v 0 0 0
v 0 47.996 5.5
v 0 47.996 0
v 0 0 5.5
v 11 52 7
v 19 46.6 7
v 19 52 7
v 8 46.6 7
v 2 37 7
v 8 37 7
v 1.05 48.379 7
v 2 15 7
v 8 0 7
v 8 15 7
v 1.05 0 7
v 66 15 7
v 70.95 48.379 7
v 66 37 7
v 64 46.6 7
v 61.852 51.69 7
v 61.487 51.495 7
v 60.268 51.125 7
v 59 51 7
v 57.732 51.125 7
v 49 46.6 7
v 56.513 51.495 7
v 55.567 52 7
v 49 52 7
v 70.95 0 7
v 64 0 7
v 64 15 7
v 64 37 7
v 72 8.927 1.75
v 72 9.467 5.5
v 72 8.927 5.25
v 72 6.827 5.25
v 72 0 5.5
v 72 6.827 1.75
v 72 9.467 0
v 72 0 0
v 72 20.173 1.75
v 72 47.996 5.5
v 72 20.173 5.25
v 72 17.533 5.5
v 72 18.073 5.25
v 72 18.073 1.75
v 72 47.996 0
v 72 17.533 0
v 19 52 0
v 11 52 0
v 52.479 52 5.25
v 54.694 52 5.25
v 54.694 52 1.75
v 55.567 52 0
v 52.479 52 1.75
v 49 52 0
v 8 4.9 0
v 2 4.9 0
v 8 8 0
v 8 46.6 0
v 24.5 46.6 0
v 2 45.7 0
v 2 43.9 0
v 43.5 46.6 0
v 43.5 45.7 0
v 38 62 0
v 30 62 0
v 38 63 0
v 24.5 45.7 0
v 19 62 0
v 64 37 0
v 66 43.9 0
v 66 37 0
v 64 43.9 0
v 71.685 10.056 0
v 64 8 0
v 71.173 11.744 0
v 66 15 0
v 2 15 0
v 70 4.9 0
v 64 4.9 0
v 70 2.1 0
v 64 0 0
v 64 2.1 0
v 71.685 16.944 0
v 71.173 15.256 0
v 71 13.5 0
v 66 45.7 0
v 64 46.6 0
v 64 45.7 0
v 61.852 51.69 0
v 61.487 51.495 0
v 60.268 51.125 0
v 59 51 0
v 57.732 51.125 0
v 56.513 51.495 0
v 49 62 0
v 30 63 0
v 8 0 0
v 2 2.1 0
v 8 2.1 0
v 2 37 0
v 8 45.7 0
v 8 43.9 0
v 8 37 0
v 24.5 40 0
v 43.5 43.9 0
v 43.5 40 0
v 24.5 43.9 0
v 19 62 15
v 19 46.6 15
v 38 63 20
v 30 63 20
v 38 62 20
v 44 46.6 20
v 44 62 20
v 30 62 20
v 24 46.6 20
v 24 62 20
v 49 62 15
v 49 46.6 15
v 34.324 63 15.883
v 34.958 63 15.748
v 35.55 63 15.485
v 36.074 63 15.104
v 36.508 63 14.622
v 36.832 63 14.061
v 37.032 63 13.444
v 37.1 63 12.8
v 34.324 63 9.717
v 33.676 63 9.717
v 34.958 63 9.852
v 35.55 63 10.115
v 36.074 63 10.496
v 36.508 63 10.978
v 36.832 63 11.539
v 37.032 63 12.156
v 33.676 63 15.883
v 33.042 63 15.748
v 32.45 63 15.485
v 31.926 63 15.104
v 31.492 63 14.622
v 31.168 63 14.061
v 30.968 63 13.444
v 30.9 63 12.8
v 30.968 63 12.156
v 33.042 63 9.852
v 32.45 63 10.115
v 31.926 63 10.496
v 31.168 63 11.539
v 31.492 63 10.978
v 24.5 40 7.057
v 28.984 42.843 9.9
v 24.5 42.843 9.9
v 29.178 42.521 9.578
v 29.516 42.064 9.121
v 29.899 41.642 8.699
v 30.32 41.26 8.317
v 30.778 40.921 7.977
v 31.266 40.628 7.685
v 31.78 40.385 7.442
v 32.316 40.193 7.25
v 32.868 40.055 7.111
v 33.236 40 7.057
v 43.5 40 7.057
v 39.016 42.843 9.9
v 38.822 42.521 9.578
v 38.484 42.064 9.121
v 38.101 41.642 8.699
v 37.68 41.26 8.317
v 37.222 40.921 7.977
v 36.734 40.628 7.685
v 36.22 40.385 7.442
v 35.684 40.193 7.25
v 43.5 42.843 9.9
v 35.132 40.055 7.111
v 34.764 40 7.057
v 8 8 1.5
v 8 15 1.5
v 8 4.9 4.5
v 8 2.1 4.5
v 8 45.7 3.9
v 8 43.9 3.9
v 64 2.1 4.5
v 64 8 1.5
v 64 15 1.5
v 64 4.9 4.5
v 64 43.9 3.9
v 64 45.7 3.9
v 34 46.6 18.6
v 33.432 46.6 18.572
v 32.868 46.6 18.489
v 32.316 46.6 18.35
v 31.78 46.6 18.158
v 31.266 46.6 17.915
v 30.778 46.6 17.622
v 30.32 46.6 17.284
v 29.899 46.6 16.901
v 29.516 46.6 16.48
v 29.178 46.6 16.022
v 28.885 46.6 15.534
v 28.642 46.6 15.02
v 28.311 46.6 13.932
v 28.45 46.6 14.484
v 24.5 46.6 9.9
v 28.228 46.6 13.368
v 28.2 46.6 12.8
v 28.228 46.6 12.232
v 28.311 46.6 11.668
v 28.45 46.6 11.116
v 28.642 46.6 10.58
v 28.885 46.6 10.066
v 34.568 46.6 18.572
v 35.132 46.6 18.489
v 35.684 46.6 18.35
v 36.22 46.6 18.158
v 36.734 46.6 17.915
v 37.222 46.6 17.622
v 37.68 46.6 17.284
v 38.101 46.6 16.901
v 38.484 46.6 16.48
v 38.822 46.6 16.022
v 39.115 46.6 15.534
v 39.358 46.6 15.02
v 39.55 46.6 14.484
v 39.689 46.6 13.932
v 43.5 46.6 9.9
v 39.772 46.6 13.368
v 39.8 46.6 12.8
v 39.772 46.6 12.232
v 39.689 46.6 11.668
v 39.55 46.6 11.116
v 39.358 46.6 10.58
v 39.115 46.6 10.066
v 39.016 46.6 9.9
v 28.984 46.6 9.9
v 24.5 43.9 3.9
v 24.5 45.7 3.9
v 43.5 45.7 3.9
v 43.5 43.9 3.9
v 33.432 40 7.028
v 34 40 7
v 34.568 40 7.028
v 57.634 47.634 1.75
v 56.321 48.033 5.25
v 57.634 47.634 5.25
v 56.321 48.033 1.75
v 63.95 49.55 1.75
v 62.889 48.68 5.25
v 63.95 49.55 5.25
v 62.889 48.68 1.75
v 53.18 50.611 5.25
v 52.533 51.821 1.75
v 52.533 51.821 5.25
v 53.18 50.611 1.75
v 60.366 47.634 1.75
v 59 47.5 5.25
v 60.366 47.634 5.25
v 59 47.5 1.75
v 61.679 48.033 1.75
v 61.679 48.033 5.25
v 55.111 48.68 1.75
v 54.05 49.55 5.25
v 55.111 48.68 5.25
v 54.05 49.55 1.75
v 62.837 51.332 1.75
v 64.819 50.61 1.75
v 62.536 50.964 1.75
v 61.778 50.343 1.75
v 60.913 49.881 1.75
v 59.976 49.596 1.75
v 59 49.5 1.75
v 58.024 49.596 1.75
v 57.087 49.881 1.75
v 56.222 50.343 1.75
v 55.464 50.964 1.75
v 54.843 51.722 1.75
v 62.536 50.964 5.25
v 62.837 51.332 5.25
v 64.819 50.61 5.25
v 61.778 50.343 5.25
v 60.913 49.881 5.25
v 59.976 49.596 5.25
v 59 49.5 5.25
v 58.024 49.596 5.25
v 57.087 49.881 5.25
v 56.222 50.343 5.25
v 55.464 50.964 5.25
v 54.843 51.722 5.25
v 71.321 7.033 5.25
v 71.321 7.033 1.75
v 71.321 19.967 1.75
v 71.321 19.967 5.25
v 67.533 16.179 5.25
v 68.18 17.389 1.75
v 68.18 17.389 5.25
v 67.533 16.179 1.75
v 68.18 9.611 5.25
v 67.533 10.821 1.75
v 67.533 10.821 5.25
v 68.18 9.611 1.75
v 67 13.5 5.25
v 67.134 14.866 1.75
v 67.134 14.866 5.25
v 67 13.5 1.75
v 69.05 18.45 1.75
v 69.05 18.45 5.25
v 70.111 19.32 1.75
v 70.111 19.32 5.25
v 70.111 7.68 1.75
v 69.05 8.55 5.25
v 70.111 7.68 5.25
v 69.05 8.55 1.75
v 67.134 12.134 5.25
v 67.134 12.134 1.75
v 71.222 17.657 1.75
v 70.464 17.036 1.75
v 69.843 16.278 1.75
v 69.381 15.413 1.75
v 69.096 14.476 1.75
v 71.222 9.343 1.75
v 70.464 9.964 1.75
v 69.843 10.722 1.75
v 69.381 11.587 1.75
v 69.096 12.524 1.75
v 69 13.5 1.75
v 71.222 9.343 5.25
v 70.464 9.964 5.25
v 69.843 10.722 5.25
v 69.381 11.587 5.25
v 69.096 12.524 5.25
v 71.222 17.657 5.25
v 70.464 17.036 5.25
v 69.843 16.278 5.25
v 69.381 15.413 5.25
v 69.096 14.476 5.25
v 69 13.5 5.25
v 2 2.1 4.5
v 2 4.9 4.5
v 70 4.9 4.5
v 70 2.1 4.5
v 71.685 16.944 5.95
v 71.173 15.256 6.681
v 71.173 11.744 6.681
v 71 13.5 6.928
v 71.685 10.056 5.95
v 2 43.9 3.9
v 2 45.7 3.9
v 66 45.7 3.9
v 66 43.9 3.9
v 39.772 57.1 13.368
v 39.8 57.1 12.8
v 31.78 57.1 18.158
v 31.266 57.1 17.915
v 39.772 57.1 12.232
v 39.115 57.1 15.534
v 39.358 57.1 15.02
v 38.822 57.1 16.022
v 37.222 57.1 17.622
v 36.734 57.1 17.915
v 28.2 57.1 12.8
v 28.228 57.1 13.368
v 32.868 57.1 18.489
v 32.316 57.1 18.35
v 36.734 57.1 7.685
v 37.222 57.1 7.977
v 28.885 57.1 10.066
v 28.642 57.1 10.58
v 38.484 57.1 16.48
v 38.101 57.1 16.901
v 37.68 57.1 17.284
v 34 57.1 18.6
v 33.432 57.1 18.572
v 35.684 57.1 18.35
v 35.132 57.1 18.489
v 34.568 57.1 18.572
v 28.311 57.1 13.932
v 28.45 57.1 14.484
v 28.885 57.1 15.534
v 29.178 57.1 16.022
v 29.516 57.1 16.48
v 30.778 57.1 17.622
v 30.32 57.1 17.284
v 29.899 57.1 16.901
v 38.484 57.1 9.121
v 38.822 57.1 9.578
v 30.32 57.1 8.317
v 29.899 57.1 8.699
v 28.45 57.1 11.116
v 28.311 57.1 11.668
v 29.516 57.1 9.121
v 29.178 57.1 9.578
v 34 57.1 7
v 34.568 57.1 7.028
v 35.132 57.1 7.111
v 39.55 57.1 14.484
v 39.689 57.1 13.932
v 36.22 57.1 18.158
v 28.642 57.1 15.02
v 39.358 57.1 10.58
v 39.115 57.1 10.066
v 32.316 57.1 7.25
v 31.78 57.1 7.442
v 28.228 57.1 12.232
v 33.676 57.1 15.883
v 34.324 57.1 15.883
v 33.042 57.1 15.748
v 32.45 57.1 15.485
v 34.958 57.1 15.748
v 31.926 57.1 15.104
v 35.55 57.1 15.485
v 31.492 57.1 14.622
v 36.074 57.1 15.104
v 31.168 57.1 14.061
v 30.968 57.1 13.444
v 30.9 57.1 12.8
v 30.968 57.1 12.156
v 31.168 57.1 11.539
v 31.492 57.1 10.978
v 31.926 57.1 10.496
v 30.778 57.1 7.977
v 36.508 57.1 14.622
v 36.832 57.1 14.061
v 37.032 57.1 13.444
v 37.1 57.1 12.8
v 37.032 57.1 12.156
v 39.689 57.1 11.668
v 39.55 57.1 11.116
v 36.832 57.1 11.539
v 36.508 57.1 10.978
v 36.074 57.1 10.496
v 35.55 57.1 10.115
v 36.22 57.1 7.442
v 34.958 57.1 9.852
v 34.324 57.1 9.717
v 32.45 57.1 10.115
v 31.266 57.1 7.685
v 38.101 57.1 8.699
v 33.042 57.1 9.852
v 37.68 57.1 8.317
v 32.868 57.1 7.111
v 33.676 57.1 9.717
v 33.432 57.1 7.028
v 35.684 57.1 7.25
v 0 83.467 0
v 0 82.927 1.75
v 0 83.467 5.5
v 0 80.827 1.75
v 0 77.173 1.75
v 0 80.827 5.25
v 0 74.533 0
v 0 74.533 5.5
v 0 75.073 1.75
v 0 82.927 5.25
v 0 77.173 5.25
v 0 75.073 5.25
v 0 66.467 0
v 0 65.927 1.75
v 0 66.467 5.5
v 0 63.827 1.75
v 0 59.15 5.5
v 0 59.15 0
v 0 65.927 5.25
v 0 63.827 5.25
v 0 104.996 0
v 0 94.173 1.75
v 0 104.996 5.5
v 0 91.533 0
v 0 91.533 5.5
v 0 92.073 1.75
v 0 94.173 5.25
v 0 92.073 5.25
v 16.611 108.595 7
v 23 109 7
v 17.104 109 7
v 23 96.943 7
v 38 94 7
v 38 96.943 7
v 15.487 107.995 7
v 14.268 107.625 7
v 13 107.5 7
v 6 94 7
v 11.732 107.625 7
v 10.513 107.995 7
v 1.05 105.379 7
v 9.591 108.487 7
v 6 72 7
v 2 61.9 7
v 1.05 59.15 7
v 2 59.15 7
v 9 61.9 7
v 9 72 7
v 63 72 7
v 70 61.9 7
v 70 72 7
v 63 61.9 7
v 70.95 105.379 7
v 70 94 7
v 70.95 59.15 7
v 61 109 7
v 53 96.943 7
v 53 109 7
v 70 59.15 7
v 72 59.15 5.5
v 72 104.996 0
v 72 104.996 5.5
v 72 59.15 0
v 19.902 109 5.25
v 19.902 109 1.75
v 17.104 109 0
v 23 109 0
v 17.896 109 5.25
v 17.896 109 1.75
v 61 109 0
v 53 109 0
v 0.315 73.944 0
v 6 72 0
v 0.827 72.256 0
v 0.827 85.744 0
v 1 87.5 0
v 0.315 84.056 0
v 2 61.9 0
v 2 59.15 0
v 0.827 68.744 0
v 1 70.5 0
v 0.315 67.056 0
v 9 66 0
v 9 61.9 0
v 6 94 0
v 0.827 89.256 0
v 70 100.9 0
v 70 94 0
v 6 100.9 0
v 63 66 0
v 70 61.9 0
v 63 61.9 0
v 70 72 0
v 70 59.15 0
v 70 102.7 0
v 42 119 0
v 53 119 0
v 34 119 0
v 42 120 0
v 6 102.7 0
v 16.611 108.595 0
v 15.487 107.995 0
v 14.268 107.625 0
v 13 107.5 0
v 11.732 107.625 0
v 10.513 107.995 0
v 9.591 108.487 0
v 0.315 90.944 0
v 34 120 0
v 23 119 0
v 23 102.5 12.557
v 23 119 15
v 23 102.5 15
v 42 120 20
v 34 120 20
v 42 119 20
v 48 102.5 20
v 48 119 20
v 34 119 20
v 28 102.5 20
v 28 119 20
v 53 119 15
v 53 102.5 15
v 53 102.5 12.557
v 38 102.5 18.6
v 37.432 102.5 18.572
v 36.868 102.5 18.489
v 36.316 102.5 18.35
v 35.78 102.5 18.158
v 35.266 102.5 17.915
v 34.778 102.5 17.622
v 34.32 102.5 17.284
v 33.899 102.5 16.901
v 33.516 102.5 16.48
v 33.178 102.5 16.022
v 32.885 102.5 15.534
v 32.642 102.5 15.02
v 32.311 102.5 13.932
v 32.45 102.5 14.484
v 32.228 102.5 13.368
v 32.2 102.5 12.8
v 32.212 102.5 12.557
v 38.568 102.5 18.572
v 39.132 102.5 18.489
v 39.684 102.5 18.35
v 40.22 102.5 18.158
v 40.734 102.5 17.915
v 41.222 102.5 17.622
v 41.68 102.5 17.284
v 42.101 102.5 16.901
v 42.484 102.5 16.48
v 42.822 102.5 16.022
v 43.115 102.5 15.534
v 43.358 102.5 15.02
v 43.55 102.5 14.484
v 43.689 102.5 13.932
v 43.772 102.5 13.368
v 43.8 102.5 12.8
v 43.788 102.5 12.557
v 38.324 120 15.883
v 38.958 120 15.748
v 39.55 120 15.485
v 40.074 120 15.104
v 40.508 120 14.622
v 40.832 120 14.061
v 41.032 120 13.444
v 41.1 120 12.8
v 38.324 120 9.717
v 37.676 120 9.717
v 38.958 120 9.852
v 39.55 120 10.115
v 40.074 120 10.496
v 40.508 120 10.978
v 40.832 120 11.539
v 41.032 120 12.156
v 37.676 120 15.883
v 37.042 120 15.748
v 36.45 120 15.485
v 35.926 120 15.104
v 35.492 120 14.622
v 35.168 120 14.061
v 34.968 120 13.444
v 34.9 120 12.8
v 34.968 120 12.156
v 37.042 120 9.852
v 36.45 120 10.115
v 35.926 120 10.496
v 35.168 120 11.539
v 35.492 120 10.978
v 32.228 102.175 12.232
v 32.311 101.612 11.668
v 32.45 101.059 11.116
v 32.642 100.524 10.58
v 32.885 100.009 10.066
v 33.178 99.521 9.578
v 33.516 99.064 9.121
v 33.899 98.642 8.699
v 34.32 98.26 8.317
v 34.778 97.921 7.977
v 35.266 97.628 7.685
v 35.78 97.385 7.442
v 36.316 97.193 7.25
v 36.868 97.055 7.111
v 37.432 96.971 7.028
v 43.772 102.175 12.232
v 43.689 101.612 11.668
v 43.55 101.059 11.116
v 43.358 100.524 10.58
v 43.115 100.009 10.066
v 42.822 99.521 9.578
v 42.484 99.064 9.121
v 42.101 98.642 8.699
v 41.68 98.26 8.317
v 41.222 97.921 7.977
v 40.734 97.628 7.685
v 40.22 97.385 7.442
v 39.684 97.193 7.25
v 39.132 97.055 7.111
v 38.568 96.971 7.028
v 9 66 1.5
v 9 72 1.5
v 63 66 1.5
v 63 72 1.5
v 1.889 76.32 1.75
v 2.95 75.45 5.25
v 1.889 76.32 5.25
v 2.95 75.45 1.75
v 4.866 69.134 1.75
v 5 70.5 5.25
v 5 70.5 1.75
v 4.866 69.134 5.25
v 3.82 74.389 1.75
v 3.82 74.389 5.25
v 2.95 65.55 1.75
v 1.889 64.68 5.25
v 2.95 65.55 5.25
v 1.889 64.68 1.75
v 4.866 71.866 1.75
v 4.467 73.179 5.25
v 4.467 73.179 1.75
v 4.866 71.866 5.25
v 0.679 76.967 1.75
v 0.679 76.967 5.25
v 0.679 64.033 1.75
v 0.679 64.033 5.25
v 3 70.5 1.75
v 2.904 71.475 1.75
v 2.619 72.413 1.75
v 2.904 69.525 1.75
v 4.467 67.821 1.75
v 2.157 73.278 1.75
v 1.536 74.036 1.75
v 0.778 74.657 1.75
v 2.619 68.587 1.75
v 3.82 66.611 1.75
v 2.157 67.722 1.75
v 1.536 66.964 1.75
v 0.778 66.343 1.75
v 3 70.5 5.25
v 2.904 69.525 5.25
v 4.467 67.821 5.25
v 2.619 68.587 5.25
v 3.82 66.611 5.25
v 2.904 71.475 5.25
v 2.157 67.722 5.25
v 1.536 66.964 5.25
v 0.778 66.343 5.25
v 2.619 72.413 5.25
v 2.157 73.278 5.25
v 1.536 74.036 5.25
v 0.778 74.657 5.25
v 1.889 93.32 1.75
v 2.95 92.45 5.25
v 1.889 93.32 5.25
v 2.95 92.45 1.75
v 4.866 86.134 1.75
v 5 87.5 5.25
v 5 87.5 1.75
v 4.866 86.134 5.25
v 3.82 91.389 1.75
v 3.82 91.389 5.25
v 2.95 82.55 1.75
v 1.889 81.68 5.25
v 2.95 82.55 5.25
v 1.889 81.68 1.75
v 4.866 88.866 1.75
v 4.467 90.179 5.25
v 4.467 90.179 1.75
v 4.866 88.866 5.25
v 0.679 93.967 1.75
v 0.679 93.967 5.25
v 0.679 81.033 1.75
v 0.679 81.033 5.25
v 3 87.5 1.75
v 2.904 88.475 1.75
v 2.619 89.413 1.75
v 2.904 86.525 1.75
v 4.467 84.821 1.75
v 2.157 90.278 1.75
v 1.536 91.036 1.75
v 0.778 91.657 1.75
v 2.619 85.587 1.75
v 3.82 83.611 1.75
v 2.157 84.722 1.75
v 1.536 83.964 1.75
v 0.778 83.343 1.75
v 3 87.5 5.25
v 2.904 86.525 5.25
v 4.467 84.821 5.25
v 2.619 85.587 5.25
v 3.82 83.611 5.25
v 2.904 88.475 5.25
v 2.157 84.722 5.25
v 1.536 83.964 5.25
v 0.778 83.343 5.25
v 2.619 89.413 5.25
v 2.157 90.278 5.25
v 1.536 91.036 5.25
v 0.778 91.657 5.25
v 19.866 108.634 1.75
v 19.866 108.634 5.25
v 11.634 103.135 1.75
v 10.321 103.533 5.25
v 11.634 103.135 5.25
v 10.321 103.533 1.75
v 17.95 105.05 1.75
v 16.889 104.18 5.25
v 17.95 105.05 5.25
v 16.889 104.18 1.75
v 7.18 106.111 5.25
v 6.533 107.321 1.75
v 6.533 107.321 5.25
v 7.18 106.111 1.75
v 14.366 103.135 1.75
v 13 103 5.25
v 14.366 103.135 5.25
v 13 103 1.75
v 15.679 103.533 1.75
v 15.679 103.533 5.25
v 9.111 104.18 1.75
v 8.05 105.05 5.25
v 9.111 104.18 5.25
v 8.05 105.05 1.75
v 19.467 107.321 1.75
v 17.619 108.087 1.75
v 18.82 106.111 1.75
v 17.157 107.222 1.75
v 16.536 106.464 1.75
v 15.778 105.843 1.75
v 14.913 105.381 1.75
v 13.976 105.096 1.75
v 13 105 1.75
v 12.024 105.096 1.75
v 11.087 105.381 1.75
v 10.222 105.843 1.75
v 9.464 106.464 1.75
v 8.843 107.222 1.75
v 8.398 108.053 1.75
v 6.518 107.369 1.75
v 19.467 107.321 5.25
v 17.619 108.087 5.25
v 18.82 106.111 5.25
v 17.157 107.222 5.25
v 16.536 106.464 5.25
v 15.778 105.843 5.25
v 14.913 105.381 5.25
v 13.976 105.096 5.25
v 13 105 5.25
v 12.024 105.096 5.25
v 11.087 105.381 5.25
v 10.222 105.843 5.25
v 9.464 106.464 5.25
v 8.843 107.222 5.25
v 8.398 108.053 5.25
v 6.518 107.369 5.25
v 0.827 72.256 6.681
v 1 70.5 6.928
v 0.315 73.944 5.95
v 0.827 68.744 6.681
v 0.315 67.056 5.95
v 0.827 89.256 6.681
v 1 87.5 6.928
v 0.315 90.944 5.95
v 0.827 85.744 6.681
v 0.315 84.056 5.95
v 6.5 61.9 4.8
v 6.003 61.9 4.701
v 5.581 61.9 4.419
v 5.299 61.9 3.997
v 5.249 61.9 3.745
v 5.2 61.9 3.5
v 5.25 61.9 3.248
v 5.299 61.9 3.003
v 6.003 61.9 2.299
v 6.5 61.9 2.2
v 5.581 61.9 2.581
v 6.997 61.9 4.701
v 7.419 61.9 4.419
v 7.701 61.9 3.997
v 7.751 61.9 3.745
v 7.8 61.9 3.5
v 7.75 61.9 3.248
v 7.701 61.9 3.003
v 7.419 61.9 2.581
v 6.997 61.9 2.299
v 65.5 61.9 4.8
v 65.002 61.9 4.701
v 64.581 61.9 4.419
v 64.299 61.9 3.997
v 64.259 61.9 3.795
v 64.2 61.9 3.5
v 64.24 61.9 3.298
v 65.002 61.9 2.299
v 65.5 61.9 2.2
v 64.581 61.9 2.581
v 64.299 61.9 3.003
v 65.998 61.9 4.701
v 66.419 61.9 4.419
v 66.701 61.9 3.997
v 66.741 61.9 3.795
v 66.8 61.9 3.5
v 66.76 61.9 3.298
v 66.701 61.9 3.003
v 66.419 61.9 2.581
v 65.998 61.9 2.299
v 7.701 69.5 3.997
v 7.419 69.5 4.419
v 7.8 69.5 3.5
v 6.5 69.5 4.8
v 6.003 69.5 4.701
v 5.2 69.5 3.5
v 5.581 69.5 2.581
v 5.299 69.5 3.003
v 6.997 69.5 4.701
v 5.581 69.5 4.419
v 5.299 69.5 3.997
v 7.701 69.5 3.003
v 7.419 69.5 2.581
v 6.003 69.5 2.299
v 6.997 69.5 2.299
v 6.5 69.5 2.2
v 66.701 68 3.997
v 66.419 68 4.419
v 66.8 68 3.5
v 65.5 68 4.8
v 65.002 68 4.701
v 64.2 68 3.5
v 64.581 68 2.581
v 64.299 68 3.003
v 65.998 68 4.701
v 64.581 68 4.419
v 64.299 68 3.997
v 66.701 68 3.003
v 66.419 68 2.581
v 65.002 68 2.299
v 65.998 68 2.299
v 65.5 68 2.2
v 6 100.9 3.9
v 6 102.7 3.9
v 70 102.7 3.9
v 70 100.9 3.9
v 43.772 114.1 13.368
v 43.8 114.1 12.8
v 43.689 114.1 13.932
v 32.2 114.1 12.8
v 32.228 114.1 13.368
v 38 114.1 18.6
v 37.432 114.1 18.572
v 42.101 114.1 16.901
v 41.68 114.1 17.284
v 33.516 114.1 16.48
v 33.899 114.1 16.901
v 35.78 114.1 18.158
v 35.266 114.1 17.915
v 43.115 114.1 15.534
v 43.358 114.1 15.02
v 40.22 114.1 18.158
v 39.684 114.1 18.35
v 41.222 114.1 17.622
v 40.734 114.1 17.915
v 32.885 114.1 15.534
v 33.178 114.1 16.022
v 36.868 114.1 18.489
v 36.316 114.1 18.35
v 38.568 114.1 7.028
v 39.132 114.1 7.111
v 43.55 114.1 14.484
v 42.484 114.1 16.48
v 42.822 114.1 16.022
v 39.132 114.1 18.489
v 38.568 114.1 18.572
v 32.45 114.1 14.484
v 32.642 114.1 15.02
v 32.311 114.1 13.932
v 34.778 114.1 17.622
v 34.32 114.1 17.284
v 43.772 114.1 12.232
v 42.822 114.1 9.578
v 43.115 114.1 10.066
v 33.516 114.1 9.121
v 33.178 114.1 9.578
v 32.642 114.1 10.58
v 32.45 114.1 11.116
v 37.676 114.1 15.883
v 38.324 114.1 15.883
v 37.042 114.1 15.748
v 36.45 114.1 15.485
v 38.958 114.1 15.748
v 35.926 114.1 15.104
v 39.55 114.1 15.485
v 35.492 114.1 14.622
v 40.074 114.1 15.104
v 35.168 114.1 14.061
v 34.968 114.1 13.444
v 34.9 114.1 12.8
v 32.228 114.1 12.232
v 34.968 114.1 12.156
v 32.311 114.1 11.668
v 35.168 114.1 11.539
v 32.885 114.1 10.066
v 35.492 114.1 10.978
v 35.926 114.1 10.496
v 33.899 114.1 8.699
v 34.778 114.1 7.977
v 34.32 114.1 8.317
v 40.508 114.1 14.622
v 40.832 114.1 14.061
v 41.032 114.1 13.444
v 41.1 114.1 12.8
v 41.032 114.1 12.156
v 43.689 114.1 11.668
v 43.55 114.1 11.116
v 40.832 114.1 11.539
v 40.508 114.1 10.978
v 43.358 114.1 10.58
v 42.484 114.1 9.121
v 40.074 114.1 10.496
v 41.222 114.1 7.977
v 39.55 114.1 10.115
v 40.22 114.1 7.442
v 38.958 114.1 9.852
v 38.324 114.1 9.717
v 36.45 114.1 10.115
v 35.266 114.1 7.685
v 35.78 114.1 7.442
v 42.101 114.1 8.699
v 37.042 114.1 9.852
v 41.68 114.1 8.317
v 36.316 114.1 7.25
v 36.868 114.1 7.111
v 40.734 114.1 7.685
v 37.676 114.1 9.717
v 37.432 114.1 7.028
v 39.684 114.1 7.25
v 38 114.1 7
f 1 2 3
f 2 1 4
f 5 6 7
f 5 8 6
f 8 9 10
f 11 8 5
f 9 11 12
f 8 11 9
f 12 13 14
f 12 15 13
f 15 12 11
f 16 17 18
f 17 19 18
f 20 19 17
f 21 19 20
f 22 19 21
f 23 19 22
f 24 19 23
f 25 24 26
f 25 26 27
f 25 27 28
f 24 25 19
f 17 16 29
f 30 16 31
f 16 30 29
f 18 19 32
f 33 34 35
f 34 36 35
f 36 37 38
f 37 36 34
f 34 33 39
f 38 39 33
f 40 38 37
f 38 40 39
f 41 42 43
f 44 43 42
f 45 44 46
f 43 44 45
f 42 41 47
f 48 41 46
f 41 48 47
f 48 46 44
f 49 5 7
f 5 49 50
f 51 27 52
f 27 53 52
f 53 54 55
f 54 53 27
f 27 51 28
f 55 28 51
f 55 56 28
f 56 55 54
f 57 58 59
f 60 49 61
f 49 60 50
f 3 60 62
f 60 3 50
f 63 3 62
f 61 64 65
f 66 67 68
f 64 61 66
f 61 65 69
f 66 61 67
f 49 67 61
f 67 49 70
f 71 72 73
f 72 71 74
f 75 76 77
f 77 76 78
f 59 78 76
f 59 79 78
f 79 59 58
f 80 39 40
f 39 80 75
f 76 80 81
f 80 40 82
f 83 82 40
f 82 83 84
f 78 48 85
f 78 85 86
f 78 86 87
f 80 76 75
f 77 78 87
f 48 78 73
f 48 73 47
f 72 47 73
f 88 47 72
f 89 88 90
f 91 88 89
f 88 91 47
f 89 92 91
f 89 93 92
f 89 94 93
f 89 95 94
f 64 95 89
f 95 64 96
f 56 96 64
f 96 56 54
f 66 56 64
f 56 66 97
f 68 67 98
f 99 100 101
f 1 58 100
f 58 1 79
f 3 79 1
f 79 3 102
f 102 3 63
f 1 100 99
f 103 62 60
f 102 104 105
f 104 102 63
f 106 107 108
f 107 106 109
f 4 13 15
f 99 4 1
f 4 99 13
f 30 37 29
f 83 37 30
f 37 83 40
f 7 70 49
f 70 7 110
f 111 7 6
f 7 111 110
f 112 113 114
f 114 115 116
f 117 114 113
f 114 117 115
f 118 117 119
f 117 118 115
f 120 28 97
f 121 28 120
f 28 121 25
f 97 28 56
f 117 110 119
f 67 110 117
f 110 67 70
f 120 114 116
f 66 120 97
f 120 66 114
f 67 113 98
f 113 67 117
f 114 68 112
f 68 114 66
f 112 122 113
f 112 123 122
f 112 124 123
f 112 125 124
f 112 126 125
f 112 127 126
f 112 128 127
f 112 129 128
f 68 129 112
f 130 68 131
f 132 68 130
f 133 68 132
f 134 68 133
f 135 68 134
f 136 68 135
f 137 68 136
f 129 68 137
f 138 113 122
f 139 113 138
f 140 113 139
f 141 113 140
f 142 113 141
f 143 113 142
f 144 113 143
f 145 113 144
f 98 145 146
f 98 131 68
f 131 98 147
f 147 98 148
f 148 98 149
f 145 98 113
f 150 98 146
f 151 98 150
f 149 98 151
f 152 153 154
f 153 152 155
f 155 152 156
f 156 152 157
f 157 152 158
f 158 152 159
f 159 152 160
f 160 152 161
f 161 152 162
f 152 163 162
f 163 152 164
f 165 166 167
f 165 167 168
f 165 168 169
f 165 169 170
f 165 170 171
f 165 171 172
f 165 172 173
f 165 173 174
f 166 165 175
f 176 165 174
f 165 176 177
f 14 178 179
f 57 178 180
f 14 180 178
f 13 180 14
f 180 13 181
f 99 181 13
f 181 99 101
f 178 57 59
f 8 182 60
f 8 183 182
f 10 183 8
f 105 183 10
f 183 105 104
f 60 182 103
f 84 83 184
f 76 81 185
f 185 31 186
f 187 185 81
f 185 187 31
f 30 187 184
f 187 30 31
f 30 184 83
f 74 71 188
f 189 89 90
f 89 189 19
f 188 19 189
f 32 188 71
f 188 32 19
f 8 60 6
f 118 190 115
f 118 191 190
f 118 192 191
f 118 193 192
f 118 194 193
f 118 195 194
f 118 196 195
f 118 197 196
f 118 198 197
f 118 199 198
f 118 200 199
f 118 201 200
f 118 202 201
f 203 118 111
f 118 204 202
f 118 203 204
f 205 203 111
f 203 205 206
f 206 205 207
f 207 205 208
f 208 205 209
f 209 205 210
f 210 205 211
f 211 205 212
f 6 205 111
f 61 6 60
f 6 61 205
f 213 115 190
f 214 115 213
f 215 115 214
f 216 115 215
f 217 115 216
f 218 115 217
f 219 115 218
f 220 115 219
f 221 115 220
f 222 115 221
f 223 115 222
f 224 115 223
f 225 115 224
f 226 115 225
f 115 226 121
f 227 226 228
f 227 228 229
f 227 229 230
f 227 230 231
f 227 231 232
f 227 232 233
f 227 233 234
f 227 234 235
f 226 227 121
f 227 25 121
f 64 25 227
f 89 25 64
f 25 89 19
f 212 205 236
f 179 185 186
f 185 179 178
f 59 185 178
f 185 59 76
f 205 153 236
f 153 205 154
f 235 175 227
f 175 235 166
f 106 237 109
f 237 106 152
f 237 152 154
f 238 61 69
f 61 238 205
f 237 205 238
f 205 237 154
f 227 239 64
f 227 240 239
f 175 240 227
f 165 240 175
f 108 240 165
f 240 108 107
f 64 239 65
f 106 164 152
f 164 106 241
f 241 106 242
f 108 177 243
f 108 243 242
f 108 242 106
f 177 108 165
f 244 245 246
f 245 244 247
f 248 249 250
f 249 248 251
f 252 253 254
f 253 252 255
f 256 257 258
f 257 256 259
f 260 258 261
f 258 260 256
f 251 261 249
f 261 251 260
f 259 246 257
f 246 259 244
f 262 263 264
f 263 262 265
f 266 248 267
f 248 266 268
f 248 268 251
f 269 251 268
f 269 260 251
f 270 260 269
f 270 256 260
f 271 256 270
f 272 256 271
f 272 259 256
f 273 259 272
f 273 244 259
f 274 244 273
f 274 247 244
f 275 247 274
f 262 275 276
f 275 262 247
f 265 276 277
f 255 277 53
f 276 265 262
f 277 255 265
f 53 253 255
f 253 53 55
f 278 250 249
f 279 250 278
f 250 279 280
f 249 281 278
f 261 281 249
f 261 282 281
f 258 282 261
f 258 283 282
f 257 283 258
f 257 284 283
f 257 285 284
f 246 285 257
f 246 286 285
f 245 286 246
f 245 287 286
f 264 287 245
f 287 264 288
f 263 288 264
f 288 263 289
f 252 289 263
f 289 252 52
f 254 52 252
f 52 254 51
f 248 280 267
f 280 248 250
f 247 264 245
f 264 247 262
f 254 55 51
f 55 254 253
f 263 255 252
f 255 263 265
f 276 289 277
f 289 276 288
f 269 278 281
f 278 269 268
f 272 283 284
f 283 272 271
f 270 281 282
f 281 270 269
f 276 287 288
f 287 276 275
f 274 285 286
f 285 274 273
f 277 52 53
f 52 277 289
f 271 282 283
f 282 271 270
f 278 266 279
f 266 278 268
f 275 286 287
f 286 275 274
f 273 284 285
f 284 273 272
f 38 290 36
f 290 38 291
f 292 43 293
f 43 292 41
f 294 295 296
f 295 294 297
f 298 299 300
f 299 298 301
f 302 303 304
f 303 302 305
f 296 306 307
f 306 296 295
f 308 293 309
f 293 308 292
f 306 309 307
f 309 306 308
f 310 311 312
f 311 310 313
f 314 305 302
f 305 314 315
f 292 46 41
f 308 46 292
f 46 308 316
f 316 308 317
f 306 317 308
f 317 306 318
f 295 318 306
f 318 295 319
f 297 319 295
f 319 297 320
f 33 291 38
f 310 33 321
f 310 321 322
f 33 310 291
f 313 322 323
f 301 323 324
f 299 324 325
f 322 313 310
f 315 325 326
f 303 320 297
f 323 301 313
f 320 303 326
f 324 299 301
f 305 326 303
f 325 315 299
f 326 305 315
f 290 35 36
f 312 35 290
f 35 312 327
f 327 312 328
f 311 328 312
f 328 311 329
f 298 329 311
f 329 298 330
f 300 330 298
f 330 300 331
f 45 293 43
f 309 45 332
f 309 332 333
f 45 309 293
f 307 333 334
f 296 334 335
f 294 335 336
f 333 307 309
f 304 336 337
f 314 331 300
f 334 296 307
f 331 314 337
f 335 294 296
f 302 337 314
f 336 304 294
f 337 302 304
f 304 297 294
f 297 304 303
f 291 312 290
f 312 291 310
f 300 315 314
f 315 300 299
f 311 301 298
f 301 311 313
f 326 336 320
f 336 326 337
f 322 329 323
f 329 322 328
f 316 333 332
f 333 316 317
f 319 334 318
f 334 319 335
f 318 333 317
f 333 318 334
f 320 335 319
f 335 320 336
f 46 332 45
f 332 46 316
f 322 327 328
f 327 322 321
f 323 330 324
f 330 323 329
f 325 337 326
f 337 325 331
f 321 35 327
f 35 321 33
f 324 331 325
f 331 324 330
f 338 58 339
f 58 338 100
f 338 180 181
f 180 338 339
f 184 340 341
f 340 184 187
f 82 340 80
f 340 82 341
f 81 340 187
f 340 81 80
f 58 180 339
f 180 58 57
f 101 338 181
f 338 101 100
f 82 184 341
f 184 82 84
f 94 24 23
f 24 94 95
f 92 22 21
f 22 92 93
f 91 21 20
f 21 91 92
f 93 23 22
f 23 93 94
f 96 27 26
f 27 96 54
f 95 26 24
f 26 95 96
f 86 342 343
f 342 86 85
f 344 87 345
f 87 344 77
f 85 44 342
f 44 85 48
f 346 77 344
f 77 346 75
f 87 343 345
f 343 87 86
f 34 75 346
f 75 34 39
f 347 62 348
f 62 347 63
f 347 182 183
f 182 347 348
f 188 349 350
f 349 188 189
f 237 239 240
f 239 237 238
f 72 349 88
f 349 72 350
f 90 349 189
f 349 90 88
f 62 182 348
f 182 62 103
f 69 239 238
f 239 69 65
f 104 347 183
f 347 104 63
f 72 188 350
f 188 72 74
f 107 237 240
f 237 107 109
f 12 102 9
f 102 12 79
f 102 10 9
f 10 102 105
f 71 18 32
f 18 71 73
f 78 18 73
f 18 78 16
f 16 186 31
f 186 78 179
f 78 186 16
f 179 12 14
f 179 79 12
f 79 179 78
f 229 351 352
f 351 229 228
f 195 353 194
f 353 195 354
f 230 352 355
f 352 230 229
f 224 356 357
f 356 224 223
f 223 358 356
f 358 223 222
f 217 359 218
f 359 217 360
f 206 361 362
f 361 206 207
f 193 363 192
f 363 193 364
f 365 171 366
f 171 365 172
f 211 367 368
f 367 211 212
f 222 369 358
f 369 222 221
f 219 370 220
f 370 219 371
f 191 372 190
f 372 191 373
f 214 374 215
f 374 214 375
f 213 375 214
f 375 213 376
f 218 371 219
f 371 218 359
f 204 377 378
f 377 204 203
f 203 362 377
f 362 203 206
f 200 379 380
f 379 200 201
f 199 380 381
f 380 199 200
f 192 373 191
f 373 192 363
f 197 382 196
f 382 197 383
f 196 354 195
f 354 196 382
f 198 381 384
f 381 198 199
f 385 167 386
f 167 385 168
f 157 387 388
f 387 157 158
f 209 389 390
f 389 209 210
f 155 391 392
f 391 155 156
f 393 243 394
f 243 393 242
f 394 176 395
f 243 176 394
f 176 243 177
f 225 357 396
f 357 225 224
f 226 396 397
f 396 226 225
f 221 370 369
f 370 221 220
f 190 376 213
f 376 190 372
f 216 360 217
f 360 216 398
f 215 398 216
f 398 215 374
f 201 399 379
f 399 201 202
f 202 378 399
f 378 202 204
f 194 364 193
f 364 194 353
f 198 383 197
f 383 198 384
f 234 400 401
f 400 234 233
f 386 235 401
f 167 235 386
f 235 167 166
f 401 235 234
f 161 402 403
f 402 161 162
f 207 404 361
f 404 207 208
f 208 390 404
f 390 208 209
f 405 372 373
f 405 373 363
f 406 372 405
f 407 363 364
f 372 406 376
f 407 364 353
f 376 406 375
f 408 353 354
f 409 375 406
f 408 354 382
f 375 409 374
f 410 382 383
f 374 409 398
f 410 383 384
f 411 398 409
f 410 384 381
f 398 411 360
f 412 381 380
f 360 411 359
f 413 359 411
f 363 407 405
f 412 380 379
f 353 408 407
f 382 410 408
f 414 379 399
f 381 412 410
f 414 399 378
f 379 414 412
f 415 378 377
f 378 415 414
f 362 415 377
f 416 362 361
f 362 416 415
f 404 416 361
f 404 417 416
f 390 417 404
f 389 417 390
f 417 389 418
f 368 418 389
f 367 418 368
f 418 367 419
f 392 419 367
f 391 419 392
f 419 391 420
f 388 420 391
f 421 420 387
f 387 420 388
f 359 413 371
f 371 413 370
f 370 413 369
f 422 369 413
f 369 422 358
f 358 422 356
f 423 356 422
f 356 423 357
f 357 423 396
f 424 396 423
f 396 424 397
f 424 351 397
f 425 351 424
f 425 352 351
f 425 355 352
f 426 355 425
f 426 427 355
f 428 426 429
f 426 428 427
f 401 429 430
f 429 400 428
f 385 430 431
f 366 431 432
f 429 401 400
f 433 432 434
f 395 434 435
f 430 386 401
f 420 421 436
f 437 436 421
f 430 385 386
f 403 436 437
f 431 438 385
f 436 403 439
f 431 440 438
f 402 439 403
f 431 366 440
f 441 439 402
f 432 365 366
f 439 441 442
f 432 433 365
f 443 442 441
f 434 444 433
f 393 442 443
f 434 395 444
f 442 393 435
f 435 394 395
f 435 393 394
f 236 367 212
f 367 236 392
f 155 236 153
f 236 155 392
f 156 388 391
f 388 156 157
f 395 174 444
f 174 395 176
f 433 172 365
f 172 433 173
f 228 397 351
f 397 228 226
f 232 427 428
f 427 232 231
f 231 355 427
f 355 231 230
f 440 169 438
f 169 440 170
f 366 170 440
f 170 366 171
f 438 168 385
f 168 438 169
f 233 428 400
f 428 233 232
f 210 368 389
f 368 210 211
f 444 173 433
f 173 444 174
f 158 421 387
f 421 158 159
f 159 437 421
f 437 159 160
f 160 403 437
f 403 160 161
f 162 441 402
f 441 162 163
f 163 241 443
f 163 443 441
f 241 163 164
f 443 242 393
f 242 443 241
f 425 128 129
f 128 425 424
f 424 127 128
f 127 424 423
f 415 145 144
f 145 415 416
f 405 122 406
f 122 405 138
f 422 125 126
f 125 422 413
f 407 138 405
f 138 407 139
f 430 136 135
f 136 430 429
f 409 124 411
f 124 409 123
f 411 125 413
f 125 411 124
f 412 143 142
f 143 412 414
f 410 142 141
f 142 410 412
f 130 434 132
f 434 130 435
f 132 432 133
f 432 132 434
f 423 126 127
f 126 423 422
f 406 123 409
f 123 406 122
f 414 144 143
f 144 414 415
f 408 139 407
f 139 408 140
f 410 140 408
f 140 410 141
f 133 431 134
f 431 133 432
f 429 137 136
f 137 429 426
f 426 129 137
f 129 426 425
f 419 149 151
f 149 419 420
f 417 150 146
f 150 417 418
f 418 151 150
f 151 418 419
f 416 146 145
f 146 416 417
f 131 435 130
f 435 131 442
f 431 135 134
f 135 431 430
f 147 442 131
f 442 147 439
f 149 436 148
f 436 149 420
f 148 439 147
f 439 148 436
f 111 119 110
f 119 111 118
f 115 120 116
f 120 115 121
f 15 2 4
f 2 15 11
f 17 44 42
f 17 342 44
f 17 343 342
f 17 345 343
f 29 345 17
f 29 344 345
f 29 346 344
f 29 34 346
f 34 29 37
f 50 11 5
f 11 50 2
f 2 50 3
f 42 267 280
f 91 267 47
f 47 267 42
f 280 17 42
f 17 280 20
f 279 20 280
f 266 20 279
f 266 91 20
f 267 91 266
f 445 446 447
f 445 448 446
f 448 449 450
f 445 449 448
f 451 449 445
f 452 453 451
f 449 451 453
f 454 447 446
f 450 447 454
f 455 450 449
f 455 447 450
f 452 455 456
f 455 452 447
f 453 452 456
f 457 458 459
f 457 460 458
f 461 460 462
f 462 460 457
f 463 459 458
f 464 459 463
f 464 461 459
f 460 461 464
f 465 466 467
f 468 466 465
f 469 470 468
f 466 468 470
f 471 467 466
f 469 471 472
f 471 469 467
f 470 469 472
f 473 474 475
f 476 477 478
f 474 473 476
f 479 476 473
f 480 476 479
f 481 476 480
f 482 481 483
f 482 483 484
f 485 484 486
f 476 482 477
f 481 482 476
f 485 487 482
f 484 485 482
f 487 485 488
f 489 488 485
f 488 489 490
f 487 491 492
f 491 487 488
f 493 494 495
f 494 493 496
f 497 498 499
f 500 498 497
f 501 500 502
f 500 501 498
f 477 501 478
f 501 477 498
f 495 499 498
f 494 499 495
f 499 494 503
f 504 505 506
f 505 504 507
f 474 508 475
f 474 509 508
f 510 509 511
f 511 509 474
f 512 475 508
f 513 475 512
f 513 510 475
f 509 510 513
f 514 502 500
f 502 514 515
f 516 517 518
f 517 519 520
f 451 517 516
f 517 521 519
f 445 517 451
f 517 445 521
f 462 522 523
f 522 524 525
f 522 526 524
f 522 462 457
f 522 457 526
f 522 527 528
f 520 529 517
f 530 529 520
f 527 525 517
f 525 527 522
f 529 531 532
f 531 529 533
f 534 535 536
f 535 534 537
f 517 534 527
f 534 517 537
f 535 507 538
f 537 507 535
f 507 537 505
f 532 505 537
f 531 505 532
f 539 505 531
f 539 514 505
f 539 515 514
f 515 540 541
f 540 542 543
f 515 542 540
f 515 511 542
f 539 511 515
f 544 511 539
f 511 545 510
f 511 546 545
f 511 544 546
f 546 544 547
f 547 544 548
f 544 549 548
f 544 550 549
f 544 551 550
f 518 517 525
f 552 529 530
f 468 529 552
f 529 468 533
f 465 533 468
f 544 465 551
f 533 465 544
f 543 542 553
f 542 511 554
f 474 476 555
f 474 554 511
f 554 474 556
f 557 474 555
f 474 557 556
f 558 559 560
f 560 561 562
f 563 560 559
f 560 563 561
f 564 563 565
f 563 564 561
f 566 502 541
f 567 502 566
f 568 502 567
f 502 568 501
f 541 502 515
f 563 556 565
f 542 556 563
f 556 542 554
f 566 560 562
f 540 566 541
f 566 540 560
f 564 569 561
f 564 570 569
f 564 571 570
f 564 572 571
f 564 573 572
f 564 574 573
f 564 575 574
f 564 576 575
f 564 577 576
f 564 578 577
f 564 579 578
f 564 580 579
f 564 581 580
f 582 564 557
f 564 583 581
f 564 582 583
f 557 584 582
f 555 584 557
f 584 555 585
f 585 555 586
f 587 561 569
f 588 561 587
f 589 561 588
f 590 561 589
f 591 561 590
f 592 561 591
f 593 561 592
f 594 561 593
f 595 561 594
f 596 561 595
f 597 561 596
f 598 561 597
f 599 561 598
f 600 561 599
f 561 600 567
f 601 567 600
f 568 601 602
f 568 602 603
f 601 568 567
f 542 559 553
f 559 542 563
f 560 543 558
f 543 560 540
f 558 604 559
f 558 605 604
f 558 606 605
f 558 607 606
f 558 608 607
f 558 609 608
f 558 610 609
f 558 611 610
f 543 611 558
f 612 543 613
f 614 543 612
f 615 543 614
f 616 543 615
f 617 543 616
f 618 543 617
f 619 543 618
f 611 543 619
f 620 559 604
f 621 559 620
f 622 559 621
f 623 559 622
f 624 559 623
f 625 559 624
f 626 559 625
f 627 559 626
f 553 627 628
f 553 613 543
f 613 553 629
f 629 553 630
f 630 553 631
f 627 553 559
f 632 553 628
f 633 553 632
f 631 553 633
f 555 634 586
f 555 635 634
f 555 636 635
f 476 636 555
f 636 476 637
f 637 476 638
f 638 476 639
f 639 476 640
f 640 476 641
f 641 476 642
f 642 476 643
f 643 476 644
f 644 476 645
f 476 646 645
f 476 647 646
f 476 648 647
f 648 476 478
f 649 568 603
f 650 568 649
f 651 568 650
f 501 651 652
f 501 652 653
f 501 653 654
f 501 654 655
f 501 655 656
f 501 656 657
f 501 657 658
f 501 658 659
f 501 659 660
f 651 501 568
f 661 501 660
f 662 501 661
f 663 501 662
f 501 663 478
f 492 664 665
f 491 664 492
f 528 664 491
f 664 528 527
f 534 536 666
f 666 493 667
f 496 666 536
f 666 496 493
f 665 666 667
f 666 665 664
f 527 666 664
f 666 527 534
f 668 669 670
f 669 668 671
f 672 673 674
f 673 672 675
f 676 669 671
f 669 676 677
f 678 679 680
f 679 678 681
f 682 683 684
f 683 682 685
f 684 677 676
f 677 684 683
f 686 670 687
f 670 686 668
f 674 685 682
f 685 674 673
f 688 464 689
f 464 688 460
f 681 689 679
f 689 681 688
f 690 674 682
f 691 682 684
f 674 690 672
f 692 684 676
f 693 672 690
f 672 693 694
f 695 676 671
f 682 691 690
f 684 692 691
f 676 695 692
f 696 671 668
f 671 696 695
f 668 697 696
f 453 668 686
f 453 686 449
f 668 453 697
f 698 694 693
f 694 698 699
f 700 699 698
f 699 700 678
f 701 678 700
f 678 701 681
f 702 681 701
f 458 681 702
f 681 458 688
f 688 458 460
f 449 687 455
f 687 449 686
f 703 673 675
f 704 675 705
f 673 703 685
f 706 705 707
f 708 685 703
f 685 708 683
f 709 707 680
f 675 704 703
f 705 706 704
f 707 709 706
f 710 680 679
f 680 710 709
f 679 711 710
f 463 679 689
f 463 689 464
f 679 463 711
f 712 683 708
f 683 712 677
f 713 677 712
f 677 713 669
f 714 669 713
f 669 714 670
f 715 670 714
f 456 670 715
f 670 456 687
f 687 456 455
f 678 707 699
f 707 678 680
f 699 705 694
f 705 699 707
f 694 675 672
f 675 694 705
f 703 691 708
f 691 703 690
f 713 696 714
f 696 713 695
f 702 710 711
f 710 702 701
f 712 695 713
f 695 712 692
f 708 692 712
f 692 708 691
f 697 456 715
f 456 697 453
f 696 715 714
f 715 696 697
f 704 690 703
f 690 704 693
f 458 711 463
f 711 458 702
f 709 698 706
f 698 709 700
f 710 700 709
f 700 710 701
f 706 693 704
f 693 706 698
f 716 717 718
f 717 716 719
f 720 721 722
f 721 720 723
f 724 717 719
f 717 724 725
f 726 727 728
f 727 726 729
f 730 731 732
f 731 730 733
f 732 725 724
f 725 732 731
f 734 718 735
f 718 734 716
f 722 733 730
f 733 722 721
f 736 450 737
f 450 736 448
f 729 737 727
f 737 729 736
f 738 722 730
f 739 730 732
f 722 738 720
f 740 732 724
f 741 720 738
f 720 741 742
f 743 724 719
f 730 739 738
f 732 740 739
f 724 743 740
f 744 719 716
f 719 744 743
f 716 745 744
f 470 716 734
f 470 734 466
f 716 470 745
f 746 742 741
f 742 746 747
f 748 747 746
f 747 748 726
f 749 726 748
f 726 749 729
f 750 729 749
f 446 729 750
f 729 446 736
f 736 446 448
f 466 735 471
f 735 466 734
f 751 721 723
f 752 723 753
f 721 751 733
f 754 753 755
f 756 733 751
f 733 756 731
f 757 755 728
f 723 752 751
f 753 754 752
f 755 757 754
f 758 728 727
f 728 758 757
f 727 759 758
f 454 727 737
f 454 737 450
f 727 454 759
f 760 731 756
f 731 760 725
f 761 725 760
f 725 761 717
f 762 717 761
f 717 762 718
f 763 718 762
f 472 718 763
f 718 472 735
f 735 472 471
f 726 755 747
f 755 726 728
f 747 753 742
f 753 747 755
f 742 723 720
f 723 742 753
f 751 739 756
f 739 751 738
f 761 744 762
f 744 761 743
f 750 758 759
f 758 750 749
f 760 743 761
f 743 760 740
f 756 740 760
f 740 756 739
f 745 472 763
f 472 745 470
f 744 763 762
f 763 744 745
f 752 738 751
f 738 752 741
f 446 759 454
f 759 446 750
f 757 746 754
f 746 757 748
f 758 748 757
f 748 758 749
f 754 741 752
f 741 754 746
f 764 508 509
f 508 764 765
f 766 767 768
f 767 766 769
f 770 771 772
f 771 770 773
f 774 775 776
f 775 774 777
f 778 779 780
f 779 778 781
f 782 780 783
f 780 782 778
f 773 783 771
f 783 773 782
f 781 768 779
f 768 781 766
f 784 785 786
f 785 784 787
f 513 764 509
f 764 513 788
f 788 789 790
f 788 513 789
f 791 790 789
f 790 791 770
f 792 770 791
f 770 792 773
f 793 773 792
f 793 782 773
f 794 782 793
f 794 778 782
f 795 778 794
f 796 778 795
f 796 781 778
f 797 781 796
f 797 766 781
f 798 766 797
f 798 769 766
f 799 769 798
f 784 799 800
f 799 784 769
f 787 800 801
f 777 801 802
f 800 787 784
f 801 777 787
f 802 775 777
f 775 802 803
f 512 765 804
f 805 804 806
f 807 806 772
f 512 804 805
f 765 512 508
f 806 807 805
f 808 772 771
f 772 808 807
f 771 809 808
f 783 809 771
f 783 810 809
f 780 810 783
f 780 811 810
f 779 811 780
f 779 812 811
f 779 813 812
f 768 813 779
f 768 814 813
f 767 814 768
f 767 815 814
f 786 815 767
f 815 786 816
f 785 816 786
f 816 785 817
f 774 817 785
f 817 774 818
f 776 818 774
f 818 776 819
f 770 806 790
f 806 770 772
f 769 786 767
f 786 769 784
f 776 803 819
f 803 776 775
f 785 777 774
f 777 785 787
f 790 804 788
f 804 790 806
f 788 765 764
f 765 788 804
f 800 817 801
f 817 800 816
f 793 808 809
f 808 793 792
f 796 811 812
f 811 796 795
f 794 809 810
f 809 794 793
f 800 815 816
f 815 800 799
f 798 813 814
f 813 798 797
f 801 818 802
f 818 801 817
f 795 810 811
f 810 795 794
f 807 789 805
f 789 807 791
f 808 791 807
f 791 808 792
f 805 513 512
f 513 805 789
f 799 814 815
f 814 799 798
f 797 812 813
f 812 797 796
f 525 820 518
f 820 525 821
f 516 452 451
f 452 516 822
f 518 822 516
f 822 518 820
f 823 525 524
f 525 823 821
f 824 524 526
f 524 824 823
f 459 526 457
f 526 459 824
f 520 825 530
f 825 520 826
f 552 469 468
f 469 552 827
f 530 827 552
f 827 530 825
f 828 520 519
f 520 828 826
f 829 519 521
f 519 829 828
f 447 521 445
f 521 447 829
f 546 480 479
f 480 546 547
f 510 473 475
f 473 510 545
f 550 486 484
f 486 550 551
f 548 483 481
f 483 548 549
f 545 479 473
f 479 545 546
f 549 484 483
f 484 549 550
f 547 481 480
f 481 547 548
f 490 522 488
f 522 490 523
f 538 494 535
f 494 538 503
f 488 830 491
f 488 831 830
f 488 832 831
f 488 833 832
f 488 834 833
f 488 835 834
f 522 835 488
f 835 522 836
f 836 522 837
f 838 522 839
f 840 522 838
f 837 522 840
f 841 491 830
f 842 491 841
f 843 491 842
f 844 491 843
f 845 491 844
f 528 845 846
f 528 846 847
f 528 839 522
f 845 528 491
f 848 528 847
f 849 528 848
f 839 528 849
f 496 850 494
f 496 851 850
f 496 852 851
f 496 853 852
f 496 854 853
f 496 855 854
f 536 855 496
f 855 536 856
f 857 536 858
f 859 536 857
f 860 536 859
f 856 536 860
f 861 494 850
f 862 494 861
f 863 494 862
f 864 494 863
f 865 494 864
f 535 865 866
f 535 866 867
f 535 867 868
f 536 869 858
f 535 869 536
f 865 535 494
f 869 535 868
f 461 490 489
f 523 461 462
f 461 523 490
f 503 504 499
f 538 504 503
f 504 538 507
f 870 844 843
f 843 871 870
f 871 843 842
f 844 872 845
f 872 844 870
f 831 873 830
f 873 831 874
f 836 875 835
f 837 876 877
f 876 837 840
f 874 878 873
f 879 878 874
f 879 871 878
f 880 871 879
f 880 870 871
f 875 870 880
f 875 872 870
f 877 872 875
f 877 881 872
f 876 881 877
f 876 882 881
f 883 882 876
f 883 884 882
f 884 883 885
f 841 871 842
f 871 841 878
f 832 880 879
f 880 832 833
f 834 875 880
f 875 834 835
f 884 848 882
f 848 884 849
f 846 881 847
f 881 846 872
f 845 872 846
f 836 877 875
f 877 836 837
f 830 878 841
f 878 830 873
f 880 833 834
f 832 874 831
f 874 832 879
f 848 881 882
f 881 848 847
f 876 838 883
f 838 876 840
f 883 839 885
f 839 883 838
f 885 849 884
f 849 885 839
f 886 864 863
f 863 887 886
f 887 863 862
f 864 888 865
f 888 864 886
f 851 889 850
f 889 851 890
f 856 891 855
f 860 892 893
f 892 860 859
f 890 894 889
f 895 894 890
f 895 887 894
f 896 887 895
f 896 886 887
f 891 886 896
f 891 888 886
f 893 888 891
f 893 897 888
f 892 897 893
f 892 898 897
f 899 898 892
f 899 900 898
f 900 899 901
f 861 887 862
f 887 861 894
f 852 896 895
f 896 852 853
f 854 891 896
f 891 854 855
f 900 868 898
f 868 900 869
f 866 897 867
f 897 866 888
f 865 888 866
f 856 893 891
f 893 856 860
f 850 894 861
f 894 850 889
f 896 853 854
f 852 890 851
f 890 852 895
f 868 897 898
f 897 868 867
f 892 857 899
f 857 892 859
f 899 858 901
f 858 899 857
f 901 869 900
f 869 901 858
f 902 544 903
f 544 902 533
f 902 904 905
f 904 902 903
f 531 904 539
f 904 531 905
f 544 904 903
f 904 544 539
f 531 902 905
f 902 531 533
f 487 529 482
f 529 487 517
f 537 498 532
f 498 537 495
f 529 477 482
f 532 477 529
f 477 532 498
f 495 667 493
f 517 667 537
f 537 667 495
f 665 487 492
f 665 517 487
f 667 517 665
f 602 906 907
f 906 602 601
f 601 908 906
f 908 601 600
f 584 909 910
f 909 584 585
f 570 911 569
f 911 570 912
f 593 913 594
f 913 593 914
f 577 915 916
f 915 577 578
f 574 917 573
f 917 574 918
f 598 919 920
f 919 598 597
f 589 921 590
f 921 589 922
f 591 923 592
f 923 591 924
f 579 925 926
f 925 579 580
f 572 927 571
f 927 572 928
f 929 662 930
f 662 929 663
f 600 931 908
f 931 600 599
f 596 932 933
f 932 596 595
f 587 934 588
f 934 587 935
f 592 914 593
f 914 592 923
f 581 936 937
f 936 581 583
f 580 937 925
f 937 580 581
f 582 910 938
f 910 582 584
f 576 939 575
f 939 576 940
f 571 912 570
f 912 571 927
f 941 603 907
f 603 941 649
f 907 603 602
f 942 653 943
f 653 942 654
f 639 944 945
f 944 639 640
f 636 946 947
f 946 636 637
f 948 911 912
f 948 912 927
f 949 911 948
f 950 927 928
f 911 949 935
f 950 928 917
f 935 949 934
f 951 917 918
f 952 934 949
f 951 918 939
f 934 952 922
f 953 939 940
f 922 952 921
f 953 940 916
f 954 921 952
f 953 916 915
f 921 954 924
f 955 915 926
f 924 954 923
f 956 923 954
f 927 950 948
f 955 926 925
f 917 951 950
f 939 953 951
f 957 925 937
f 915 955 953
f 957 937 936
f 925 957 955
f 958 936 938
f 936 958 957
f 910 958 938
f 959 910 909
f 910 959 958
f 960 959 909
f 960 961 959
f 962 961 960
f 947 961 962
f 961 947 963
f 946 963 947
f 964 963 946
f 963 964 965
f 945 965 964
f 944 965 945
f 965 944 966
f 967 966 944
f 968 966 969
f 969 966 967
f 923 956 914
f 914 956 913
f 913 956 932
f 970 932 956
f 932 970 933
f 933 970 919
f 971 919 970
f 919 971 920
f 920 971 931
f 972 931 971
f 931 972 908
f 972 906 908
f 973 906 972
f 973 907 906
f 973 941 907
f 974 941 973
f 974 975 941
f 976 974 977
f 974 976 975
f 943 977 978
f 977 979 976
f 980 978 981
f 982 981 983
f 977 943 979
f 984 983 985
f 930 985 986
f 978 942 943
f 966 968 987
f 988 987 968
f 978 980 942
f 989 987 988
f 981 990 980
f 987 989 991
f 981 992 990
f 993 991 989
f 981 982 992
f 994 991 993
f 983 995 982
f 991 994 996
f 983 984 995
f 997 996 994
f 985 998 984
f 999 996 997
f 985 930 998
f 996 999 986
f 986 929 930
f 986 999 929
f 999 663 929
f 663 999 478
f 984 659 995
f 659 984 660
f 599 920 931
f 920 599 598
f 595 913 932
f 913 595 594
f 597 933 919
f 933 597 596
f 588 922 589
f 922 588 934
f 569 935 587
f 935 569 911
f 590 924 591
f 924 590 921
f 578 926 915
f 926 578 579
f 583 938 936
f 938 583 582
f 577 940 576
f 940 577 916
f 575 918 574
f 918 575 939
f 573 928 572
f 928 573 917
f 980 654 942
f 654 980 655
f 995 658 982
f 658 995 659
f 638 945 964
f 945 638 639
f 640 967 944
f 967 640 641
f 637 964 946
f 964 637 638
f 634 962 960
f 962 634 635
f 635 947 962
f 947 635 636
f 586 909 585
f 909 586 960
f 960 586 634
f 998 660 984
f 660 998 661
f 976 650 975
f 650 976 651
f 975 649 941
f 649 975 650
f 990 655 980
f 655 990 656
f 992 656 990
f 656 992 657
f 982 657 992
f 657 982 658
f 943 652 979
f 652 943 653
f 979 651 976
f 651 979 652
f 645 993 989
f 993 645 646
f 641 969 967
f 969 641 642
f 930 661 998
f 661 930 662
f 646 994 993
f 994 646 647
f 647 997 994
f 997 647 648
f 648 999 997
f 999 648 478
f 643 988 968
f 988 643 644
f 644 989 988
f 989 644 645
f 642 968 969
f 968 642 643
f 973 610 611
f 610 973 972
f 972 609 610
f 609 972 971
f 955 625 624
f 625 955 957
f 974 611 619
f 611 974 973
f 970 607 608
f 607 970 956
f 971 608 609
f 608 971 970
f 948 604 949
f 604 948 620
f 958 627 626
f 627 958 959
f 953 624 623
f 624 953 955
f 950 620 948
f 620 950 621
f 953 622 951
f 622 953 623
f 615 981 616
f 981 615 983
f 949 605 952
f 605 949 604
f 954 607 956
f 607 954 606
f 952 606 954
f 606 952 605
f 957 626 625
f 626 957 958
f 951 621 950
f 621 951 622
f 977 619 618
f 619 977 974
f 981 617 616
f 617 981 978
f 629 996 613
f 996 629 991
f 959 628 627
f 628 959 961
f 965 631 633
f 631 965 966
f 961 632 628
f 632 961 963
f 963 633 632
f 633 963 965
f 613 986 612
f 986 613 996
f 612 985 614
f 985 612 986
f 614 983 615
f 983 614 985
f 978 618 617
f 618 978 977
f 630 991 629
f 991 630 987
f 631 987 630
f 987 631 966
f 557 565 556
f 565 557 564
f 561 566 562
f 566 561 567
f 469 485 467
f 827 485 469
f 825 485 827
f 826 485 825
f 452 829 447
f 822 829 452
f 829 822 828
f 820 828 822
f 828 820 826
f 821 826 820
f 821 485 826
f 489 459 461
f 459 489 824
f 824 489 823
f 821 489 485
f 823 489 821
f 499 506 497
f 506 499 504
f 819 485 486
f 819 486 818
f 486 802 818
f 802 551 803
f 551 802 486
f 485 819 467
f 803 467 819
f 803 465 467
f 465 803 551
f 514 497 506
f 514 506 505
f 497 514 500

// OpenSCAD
// file: ../../configuration.scad
/*
	Konfiguracni soubor 3D tiskarny RebeliX X2
	
	Sledujte nas na:		  
			www.RepRap4U.cz
			www.facebook.com/RebeliX.cz
			https://twitter.com/reprap4u
			https://plus.google.com/+Reprap4uCz-3Dtiskarna-RebeliX
*/

/*================ Slic3r nastaveni ==========================*/

// Vyska vrstvy pro tisknuti dilu [mm]
layer_height = 0.3;

// Sirka vytlacovaneho materialu [mm]
extrusion_width = 0.66; //Slic3r->Print Settings->Advanced->Default extrusion width

/*==================== M6 sroub ==============================*/

// Rezerva prumeru hlavy sroubu [mm]
space = 1;

// Prumer hlavy M6 sroubu (pricte se rezerva) [mm]
M6_head_diameter = 10.6+space;
//M6_head_diameter = 12+space;

// Vyska hlavy M6 sroubu (dulezite pro zapusteni hlavy sroubu do plastu) [mm]
M6_head_height = 3.6;
//M6_head_height = 4.5;

// Delka sroubu M6 [mm]
// M6x12
M6_lenght = 12;

/*=================== Nastaveni dilu =========================*/

// Posun Z zakladny
z_base_offset = 11;

// Tloustka rohovych spojek
// 5 mm => sroub M6x14 s podlozkou
// 3 mm => sroub M6x12 s podlozkou
coupler_thickness = 5;

// Prumer 8mm tyce
rod_8mm_d = 8.2;

// Posun drzacku mezi x-motor a x-end
x_holder_position = 6.5;

/*======================== Motory ============================*/

// Delka motoru (ovlivni dily a delky tyci pro osy Z a Y)
//SX17-1003LQFE (doporuceno hlavne na osu Z)
motor_length = 29.5;
//SX17-1003 (doporuceno hlavne na osu Z), SX17-0503LQEF
//motor_length = 34;
//SX17-1005
//motor_length = 40;
//SX17-0905 - zde je jiz problem s velkou vyskou motoru na ose Z - musi se upravit endstop-holder
//motor_length = 48;

/*================ Remeny a remenicky ========================*/

// GT2 
belt_tooth_distance = 2;
belt_tooth_ratio = 0.5;

// T2.5
//belt_tooth_distance = 2.5;
//belt_tooth_ratio = 0.68;
// main file
// RebeliX
//
// RAMPS mini drzak
// GNU GPL v3
// Martin Neruda <neruda@reprap4u.cz>
// http://www.reprap4u.cz

include <../../configuration.scad>

box_sirka = 72;
box_vyska = 52;
PCB_tloustka = 1.9;
holder_offset = 10;
offset_zakladny = 2;

module holder_base(vyska,sirka,delka,pozice){
	offset_zakladny = pozice == 1 ? offset_zakladny : -offset_zakladny;

	// Drzak Arduina
	translate([0,0,0]) cube([sirka,delka,vyska]);
	// Pridelani do profilu
	translate([sirka/2-15+offset_zakladny,delka-6.5,0]) cube([30,6.5+holder_offset,20]);
	// Vodici lista
	translate([sirka/2-4+offset_zakladny,delka-1,0]) cube([8,2+holder_offset,20]);
	// Vystuha
	translate([sirka/2+offset_zakladny,delka-6.4,7]) rotate([45,0,0]) cube([30,8,8], center=true);
}

module top_holder_cuts(vyska,delka,sirka,pozice){

	offset_zakladny = pozice == 1 ? offset_zakladny : -offset_zakladny;

	// Vyrez pro Arduino PCB
	translate([sirka/2 - 64/2 + offset_zakladny,box_vyska-8.1,-0.1]) cube([64,1.8,4]);
	// Vyrez pro RAMPS
	translate([box_sirka/2 + offset_zakladny,box_vyska-8-10-5.5-2.5,-0.1]) rotate([0,0,180]) cube([64,17+5,2*15], center=true);
	// Otvor pro M6 sroub
	translate([sirka/2+offset_zakladny,delka-6+M6_head_height+holder_offset-2.5,vyska+M6_head_diameter/2]) rotate([90,0,0]) cylinder(r=M6_head_diameter/2,h=30,$fn=64);
	translate([sirka/2+offset_zakladny,delka,vyska+M6_head_diameter/2]) rotate([90,0,0]) cylinder(r=3.1,h=50,$fn=30,center=true);
	// Vyrez vrchniho dilu
	if (pozice == 1) {	
		difference() {
		  translate([9,-0.1,-0.1]) cube([box_sirka-18,box_vyska-15,vyska+1]);
		  translate([0,9,0]) cube([box_sirka,11,1.5]);
		}
		// Zip pasky
		translate([-2,13.5,vyska/2 - 3.5/2]) zip_paska(7);
		translate([-2,30.5,vyska/2 - 3.5/2]) zip_paska(7);
		translate([13,box_vyska+1,vyska/2 - 3.5/2]) zip_paska(7);
		//Vyrez pro kabely
		translate([-8,13.5,-0.1]) cylinder(r=9,h=10,$fn=32);
		translate([-8,30.5,-0.1]) cylinder(r=9,h=10,$fn=32);
		translate([13,box_vyska+5,-0.1]) cylinder(r=6.5,h=10,$fn=32);
		// Vyrez pro kryci mrizku
		translate([box_sirka/2,3.5,vyska/2]) cube([box_sirka-4,2.8,vyska+0.1],center=true);
		translate([box_sirka/2,3.5-2.8,vyska/2]) cube([box_sirka+1,2.9,vyska+0.1],center=true);
		
		// Vyrez pro sroubky
		translate([box_sirka/2 - 66/2 + 3.5,5,vyska/2]) rotate([90,0,0]) cylinder(r=1.3,h=15,$fn=16,center=true);
		translate([box_sirka/2 + 66/2 - 3.5,3.5,vyska/2]) rotate([90,0,0]) cylinder(r=1.3,h=15,$fn=16,center=true);
	}
	// Vyrez spodni dil
	if (pozice == 0) {	
		difference(){
	      translate([8,-0.1,-0.1]) cube([box_sirka-16,box_vyska-7.2+PCB_tloustka,30]);
		  translate([0,8,0]) cube([box_sirka,8,1.5]);
	      translate([sirka/2+offset_zakladny,box_vyska,-0.1]) rotate([0,0,180]) cube([19,24,20], center=true);
		}
	// Vyrez pro kryci mrizku
	translate([box_sirka/2,3.5,0]) cube([box_sirka-4,2.8,vyska+2],center=true);
	// Zip pasky
	translate([box_sirka-13,box_vyska+2.5,vyska/2 - 3.5/2]) zip_paska(7);
	translate([sirka+2,13.5,vyska/2 - 3.5/2]) zip_paska(7);
	//Vyrez pro kabely
	translate([box_sirka-13,box_vyska+5.5,0]) cylinder(r=6.5,h=30,$fn=32,center=true);
	translate([sirka+8,13.5,-0.1]) cylinder(r=9,h=10,$fn=32);
	}

	// Uspora plastu
	// Seriznute rohy
	translate([sirka/2 - 15+offset_zakladny,delka-10,20-5]) rotate([0,-45,0]) cube([10,holder_offset+15,10]);
	translate([sirka/2 + 15+offset_zakladny,delka-10,20-5]) rotate([0,-45,0]) cube([10,holder_offset+15,10]);

	translate([0,-0.1,vyska-1.5]) rotate([0,-55,0]) cube([30,60,30]);
	translate([sirka,-0.1,vyska-1.5]) rotate([0,-35,0]) cube([30,60,30]);
	
	// Rohy zakladny
	translate([box_sirka/2 - 25,box_vyska,-0.1]) rotate([0,0,110]) cube([15,40,15]);
	translate([box_sirka/2 + 25,box_vyska,-0.1]) rotate([0,0,-20]) cube([40,15,15]);
	
}

module zip_paska(r_vnejsi){
  difference(){
    cylinder(r=r_vnejsi,h=3.5,$fn=32);
    cylinder(r=r_vnejsi-2,h=3.5,$fn=32);
  }
}

// Spodek
translate([0,0,0]) difference(){
	holder_base(7,box_sirka,box_vyska,0);
	top_holder_cuts(7,box_vyska,box_sirka,0);
}

// Vrsek
translate([0,box_vyska+holder_offset - 5,0]) difference(){
	holder_base(7,box_sirka,box_vyska,1);
	top_holder_cuts(7,box_vyska,box_sirka,1);
}
